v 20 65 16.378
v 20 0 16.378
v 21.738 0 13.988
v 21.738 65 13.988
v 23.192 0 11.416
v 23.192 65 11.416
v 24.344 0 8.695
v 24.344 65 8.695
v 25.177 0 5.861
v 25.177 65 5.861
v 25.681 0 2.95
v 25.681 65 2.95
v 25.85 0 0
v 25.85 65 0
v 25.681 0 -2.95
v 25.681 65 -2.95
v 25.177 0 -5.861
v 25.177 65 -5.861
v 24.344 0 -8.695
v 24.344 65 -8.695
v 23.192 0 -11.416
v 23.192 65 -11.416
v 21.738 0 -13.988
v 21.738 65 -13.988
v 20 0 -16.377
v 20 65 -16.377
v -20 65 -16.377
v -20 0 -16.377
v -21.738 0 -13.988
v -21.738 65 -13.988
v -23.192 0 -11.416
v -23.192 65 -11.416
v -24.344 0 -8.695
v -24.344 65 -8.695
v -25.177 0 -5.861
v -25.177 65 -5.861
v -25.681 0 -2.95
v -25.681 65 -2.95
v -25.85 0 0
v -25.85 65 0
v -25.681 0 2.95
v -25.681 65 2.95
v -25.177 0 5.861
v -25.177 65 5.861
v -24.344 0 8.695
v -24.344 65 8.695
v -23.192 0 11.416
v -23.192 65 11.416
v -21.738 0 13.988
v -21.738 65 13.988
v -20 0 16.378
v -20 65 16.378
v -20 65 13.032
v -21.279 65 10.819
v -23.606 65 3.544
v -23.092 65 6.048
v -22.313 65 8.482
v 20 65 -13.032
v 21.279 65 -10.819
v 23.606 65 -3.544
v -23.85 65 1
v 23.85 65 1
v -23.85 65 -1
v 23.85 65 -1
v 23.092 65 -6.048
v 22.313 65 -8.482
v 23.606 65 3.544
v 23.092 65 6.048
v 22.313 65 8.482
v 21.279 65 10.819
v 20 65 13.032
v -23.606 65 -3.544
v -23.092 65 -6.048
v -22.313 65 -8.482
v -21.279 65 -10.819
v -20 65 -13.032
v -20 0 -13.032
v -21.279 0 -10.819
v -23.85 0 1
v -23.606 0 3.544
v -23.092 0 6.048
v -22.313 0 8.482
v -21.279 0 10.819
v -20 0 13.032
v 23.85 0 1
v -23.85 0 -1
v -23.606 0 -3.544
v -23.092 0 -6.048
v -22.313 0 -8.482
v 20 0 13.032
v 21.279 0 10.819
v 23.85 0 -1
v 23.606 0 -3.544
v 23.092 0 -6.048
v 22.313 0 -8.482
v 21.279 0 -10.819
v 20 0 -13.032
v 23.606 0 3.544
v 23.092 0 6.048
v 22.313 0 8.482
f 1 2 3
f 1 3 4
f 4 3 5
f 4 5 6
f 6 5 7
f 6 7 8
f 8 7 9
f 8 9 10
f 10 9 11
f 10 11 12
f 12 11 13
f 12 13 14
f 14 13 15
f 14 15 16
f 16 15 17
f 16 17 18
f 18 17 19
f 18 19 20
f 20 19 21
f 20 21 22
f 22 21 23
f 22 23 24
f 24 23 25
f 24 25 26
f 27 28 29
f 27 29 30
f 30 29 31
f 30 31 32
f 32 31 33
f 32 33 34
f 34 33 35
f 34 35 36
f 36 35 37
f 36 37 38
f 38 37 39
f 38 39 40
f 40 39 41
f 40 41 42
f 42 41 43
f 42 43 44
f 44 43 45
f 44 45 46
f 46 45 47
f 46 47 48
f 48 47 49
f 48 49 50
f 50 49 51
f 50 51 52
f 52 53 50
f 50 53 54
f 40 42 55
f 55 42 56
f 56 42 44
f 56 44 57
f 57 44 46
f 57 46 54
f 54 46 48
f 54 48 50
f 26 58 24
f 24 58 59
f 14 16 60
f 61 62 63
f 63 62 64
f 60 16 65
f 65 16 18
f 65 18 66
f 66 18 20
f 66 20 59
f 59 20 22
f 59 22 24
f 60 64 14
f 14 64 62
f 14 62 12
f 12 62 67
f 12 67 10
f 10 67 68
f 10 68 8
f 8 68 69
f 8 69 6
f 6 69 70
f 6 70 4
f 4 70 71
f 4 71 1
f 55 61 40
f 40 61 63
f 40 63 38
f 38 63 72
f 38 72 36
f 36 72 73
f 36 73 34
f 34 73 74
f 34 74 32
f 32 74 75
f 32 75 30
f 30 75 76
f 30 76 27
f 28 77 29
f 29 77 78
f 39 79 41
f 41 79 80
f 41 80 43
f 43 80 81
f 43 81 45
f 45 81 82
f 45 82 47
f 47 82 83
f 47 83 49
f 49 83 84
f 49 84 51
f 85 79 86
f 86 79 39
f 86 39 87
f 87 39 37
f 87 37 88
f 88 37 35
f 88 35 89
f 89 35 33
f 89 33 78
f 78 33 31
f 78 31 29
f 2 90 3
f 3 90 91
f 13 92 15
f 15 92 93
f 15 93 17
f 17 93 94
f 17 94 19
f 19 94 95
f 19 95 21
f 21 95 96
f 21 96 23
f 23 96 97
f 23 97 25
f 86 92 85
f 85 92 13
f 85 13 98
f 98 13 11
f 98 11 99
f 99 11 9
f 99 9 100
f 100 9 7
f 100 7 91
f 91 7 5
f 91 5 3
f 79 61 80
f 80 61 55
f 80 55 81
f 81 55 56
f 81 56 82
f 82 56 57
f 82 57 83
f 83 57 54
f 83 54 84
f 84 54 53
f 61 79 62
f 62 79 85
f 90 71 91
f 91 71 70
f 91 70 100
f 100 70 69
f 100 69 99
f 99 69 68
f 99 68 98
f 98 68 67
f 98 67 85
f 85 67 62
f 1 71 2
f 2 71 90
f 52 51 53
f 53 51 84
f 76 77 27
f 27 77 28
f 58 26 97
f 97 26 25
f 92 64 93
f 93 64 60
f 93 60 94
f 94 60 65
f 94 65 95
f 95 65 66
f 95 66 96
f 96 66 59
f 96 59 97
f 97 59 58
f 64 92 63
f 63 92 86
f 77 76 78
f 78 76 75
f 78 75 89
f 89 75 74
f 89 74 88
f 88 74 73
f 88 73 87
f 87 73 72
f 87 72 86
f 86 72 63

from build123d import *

# Parameters (mm, degrees)
SKETCH2_R           = 25.85
BOSS_EXTRUDE1_DEPTH = 65
CUT_EXTRUDE1_START  = -100
CUT_EXTRUDE1_DEPTH  = 100


with BuildPart() as part:
    # Sketch2 → Boss-Extrude1 (new body)
    with BuildSketch(Plane(origin=(0, 0, 0), x_dir=(1, 0, 0), z_dir=(0, 1, 0))):
        with Locations(Location((0, 0, 0), (0, 0, 270))):
            Circle(SKETCH2_R)
    extrude(amount=BOSS_EXTRUDE1_DEPTH)

    # Sketch4 → Cut-Extrude1 (cut)
    with BuildSketch(Plane(origin=(0, 65, 0), x_dir=(1, 0, 0), z_dir=(0, 1, 0)).offset(CUT_EXTRUDE1_START)):
        with BuildLine():
            Line((-20, 16.377499809), (-20, 13.031596218))
            ThreePointArc((-20, 13.031596218), (0, 23.870955155), (20, 13.031596218))
            Line((20, 13.031596218), (20, 16.377499809))
            ThreePointArc((20, 16.377499809), (0, 25.85), (-20, 16.377499809))
        make_face()
        with BuildLine():
            ThreePointArc((20, 13.031596218), (0, 23.870955155), (-20, 13.031596218))
            Line((-20, 13.031596218), (-20, 11.370955155))
            Line((-20, 11.370955155), (20, 11.370955155))
            Line((20, 11.370955155), (20, 13.031596218))
        make_face()
        with BuildLine():
            ThreePointArc((-20, 13.031596218), (-22.735334875, 7.275097808), (-23.85, 1))
            Line((-23.85, 1), (23.85, 1))
            ThreePointArc((23.85, 1), (22.735334875, 7.275097808), (20, 13.031596218))
            Line((20, 13.031596218), (20, 11.370955155))
            Line((20, 11.370955155), (-20, 11.370955155))
            Line((-20, 11.370955155), (-20, 13.031596218))
        make_face()
        with BuildLine():
            ThreePointArc((-23.85, -1), (-22.735334875, -7.275097808), (-20, -13.031596218))
            Line((-20, -13.031596218), (-20, -11.370955155))
            Line((-20, -11.370955155), (20, -11.370955155))
            Line((20, -11.370955155), (20, -13.031596218))
            ThreePointArc((20, -13.031596218), (22.735334875, -7.275097808), (23.85, -1))
            Line((23.85, -1), (-23.85, -1))
        make_face()
        with BuildLine():
            Line((-20, -11.370955155), (-20, -13.031596218))
            ThreePointArc((-20, -13.031596218), (0, -23.870955155), (20, -13.031596218))
            Line((20, -13.031596218), (20, -11.370955155))
            Line((20, -11.370955155), (-20, -11.370955155))
        make_face()
        with BuildLine():
            Line((-20, -13.031596218), (-20, -16.377499809))
            ThreePointArc((-20, -16.377499809), (0, -25.85), (20, -16.377499809))
            Line((20, -16.377499809), (20, -13.031596218))
            ThreePointArc((20, -13.031596218), (0, -23.870955155), (-20, -13.031596218))
        make_face()
    extrude(amount=CUT_EXTRUDE1_DEPTH, mode=Mode.SUBTRACT)


solid = part.part
